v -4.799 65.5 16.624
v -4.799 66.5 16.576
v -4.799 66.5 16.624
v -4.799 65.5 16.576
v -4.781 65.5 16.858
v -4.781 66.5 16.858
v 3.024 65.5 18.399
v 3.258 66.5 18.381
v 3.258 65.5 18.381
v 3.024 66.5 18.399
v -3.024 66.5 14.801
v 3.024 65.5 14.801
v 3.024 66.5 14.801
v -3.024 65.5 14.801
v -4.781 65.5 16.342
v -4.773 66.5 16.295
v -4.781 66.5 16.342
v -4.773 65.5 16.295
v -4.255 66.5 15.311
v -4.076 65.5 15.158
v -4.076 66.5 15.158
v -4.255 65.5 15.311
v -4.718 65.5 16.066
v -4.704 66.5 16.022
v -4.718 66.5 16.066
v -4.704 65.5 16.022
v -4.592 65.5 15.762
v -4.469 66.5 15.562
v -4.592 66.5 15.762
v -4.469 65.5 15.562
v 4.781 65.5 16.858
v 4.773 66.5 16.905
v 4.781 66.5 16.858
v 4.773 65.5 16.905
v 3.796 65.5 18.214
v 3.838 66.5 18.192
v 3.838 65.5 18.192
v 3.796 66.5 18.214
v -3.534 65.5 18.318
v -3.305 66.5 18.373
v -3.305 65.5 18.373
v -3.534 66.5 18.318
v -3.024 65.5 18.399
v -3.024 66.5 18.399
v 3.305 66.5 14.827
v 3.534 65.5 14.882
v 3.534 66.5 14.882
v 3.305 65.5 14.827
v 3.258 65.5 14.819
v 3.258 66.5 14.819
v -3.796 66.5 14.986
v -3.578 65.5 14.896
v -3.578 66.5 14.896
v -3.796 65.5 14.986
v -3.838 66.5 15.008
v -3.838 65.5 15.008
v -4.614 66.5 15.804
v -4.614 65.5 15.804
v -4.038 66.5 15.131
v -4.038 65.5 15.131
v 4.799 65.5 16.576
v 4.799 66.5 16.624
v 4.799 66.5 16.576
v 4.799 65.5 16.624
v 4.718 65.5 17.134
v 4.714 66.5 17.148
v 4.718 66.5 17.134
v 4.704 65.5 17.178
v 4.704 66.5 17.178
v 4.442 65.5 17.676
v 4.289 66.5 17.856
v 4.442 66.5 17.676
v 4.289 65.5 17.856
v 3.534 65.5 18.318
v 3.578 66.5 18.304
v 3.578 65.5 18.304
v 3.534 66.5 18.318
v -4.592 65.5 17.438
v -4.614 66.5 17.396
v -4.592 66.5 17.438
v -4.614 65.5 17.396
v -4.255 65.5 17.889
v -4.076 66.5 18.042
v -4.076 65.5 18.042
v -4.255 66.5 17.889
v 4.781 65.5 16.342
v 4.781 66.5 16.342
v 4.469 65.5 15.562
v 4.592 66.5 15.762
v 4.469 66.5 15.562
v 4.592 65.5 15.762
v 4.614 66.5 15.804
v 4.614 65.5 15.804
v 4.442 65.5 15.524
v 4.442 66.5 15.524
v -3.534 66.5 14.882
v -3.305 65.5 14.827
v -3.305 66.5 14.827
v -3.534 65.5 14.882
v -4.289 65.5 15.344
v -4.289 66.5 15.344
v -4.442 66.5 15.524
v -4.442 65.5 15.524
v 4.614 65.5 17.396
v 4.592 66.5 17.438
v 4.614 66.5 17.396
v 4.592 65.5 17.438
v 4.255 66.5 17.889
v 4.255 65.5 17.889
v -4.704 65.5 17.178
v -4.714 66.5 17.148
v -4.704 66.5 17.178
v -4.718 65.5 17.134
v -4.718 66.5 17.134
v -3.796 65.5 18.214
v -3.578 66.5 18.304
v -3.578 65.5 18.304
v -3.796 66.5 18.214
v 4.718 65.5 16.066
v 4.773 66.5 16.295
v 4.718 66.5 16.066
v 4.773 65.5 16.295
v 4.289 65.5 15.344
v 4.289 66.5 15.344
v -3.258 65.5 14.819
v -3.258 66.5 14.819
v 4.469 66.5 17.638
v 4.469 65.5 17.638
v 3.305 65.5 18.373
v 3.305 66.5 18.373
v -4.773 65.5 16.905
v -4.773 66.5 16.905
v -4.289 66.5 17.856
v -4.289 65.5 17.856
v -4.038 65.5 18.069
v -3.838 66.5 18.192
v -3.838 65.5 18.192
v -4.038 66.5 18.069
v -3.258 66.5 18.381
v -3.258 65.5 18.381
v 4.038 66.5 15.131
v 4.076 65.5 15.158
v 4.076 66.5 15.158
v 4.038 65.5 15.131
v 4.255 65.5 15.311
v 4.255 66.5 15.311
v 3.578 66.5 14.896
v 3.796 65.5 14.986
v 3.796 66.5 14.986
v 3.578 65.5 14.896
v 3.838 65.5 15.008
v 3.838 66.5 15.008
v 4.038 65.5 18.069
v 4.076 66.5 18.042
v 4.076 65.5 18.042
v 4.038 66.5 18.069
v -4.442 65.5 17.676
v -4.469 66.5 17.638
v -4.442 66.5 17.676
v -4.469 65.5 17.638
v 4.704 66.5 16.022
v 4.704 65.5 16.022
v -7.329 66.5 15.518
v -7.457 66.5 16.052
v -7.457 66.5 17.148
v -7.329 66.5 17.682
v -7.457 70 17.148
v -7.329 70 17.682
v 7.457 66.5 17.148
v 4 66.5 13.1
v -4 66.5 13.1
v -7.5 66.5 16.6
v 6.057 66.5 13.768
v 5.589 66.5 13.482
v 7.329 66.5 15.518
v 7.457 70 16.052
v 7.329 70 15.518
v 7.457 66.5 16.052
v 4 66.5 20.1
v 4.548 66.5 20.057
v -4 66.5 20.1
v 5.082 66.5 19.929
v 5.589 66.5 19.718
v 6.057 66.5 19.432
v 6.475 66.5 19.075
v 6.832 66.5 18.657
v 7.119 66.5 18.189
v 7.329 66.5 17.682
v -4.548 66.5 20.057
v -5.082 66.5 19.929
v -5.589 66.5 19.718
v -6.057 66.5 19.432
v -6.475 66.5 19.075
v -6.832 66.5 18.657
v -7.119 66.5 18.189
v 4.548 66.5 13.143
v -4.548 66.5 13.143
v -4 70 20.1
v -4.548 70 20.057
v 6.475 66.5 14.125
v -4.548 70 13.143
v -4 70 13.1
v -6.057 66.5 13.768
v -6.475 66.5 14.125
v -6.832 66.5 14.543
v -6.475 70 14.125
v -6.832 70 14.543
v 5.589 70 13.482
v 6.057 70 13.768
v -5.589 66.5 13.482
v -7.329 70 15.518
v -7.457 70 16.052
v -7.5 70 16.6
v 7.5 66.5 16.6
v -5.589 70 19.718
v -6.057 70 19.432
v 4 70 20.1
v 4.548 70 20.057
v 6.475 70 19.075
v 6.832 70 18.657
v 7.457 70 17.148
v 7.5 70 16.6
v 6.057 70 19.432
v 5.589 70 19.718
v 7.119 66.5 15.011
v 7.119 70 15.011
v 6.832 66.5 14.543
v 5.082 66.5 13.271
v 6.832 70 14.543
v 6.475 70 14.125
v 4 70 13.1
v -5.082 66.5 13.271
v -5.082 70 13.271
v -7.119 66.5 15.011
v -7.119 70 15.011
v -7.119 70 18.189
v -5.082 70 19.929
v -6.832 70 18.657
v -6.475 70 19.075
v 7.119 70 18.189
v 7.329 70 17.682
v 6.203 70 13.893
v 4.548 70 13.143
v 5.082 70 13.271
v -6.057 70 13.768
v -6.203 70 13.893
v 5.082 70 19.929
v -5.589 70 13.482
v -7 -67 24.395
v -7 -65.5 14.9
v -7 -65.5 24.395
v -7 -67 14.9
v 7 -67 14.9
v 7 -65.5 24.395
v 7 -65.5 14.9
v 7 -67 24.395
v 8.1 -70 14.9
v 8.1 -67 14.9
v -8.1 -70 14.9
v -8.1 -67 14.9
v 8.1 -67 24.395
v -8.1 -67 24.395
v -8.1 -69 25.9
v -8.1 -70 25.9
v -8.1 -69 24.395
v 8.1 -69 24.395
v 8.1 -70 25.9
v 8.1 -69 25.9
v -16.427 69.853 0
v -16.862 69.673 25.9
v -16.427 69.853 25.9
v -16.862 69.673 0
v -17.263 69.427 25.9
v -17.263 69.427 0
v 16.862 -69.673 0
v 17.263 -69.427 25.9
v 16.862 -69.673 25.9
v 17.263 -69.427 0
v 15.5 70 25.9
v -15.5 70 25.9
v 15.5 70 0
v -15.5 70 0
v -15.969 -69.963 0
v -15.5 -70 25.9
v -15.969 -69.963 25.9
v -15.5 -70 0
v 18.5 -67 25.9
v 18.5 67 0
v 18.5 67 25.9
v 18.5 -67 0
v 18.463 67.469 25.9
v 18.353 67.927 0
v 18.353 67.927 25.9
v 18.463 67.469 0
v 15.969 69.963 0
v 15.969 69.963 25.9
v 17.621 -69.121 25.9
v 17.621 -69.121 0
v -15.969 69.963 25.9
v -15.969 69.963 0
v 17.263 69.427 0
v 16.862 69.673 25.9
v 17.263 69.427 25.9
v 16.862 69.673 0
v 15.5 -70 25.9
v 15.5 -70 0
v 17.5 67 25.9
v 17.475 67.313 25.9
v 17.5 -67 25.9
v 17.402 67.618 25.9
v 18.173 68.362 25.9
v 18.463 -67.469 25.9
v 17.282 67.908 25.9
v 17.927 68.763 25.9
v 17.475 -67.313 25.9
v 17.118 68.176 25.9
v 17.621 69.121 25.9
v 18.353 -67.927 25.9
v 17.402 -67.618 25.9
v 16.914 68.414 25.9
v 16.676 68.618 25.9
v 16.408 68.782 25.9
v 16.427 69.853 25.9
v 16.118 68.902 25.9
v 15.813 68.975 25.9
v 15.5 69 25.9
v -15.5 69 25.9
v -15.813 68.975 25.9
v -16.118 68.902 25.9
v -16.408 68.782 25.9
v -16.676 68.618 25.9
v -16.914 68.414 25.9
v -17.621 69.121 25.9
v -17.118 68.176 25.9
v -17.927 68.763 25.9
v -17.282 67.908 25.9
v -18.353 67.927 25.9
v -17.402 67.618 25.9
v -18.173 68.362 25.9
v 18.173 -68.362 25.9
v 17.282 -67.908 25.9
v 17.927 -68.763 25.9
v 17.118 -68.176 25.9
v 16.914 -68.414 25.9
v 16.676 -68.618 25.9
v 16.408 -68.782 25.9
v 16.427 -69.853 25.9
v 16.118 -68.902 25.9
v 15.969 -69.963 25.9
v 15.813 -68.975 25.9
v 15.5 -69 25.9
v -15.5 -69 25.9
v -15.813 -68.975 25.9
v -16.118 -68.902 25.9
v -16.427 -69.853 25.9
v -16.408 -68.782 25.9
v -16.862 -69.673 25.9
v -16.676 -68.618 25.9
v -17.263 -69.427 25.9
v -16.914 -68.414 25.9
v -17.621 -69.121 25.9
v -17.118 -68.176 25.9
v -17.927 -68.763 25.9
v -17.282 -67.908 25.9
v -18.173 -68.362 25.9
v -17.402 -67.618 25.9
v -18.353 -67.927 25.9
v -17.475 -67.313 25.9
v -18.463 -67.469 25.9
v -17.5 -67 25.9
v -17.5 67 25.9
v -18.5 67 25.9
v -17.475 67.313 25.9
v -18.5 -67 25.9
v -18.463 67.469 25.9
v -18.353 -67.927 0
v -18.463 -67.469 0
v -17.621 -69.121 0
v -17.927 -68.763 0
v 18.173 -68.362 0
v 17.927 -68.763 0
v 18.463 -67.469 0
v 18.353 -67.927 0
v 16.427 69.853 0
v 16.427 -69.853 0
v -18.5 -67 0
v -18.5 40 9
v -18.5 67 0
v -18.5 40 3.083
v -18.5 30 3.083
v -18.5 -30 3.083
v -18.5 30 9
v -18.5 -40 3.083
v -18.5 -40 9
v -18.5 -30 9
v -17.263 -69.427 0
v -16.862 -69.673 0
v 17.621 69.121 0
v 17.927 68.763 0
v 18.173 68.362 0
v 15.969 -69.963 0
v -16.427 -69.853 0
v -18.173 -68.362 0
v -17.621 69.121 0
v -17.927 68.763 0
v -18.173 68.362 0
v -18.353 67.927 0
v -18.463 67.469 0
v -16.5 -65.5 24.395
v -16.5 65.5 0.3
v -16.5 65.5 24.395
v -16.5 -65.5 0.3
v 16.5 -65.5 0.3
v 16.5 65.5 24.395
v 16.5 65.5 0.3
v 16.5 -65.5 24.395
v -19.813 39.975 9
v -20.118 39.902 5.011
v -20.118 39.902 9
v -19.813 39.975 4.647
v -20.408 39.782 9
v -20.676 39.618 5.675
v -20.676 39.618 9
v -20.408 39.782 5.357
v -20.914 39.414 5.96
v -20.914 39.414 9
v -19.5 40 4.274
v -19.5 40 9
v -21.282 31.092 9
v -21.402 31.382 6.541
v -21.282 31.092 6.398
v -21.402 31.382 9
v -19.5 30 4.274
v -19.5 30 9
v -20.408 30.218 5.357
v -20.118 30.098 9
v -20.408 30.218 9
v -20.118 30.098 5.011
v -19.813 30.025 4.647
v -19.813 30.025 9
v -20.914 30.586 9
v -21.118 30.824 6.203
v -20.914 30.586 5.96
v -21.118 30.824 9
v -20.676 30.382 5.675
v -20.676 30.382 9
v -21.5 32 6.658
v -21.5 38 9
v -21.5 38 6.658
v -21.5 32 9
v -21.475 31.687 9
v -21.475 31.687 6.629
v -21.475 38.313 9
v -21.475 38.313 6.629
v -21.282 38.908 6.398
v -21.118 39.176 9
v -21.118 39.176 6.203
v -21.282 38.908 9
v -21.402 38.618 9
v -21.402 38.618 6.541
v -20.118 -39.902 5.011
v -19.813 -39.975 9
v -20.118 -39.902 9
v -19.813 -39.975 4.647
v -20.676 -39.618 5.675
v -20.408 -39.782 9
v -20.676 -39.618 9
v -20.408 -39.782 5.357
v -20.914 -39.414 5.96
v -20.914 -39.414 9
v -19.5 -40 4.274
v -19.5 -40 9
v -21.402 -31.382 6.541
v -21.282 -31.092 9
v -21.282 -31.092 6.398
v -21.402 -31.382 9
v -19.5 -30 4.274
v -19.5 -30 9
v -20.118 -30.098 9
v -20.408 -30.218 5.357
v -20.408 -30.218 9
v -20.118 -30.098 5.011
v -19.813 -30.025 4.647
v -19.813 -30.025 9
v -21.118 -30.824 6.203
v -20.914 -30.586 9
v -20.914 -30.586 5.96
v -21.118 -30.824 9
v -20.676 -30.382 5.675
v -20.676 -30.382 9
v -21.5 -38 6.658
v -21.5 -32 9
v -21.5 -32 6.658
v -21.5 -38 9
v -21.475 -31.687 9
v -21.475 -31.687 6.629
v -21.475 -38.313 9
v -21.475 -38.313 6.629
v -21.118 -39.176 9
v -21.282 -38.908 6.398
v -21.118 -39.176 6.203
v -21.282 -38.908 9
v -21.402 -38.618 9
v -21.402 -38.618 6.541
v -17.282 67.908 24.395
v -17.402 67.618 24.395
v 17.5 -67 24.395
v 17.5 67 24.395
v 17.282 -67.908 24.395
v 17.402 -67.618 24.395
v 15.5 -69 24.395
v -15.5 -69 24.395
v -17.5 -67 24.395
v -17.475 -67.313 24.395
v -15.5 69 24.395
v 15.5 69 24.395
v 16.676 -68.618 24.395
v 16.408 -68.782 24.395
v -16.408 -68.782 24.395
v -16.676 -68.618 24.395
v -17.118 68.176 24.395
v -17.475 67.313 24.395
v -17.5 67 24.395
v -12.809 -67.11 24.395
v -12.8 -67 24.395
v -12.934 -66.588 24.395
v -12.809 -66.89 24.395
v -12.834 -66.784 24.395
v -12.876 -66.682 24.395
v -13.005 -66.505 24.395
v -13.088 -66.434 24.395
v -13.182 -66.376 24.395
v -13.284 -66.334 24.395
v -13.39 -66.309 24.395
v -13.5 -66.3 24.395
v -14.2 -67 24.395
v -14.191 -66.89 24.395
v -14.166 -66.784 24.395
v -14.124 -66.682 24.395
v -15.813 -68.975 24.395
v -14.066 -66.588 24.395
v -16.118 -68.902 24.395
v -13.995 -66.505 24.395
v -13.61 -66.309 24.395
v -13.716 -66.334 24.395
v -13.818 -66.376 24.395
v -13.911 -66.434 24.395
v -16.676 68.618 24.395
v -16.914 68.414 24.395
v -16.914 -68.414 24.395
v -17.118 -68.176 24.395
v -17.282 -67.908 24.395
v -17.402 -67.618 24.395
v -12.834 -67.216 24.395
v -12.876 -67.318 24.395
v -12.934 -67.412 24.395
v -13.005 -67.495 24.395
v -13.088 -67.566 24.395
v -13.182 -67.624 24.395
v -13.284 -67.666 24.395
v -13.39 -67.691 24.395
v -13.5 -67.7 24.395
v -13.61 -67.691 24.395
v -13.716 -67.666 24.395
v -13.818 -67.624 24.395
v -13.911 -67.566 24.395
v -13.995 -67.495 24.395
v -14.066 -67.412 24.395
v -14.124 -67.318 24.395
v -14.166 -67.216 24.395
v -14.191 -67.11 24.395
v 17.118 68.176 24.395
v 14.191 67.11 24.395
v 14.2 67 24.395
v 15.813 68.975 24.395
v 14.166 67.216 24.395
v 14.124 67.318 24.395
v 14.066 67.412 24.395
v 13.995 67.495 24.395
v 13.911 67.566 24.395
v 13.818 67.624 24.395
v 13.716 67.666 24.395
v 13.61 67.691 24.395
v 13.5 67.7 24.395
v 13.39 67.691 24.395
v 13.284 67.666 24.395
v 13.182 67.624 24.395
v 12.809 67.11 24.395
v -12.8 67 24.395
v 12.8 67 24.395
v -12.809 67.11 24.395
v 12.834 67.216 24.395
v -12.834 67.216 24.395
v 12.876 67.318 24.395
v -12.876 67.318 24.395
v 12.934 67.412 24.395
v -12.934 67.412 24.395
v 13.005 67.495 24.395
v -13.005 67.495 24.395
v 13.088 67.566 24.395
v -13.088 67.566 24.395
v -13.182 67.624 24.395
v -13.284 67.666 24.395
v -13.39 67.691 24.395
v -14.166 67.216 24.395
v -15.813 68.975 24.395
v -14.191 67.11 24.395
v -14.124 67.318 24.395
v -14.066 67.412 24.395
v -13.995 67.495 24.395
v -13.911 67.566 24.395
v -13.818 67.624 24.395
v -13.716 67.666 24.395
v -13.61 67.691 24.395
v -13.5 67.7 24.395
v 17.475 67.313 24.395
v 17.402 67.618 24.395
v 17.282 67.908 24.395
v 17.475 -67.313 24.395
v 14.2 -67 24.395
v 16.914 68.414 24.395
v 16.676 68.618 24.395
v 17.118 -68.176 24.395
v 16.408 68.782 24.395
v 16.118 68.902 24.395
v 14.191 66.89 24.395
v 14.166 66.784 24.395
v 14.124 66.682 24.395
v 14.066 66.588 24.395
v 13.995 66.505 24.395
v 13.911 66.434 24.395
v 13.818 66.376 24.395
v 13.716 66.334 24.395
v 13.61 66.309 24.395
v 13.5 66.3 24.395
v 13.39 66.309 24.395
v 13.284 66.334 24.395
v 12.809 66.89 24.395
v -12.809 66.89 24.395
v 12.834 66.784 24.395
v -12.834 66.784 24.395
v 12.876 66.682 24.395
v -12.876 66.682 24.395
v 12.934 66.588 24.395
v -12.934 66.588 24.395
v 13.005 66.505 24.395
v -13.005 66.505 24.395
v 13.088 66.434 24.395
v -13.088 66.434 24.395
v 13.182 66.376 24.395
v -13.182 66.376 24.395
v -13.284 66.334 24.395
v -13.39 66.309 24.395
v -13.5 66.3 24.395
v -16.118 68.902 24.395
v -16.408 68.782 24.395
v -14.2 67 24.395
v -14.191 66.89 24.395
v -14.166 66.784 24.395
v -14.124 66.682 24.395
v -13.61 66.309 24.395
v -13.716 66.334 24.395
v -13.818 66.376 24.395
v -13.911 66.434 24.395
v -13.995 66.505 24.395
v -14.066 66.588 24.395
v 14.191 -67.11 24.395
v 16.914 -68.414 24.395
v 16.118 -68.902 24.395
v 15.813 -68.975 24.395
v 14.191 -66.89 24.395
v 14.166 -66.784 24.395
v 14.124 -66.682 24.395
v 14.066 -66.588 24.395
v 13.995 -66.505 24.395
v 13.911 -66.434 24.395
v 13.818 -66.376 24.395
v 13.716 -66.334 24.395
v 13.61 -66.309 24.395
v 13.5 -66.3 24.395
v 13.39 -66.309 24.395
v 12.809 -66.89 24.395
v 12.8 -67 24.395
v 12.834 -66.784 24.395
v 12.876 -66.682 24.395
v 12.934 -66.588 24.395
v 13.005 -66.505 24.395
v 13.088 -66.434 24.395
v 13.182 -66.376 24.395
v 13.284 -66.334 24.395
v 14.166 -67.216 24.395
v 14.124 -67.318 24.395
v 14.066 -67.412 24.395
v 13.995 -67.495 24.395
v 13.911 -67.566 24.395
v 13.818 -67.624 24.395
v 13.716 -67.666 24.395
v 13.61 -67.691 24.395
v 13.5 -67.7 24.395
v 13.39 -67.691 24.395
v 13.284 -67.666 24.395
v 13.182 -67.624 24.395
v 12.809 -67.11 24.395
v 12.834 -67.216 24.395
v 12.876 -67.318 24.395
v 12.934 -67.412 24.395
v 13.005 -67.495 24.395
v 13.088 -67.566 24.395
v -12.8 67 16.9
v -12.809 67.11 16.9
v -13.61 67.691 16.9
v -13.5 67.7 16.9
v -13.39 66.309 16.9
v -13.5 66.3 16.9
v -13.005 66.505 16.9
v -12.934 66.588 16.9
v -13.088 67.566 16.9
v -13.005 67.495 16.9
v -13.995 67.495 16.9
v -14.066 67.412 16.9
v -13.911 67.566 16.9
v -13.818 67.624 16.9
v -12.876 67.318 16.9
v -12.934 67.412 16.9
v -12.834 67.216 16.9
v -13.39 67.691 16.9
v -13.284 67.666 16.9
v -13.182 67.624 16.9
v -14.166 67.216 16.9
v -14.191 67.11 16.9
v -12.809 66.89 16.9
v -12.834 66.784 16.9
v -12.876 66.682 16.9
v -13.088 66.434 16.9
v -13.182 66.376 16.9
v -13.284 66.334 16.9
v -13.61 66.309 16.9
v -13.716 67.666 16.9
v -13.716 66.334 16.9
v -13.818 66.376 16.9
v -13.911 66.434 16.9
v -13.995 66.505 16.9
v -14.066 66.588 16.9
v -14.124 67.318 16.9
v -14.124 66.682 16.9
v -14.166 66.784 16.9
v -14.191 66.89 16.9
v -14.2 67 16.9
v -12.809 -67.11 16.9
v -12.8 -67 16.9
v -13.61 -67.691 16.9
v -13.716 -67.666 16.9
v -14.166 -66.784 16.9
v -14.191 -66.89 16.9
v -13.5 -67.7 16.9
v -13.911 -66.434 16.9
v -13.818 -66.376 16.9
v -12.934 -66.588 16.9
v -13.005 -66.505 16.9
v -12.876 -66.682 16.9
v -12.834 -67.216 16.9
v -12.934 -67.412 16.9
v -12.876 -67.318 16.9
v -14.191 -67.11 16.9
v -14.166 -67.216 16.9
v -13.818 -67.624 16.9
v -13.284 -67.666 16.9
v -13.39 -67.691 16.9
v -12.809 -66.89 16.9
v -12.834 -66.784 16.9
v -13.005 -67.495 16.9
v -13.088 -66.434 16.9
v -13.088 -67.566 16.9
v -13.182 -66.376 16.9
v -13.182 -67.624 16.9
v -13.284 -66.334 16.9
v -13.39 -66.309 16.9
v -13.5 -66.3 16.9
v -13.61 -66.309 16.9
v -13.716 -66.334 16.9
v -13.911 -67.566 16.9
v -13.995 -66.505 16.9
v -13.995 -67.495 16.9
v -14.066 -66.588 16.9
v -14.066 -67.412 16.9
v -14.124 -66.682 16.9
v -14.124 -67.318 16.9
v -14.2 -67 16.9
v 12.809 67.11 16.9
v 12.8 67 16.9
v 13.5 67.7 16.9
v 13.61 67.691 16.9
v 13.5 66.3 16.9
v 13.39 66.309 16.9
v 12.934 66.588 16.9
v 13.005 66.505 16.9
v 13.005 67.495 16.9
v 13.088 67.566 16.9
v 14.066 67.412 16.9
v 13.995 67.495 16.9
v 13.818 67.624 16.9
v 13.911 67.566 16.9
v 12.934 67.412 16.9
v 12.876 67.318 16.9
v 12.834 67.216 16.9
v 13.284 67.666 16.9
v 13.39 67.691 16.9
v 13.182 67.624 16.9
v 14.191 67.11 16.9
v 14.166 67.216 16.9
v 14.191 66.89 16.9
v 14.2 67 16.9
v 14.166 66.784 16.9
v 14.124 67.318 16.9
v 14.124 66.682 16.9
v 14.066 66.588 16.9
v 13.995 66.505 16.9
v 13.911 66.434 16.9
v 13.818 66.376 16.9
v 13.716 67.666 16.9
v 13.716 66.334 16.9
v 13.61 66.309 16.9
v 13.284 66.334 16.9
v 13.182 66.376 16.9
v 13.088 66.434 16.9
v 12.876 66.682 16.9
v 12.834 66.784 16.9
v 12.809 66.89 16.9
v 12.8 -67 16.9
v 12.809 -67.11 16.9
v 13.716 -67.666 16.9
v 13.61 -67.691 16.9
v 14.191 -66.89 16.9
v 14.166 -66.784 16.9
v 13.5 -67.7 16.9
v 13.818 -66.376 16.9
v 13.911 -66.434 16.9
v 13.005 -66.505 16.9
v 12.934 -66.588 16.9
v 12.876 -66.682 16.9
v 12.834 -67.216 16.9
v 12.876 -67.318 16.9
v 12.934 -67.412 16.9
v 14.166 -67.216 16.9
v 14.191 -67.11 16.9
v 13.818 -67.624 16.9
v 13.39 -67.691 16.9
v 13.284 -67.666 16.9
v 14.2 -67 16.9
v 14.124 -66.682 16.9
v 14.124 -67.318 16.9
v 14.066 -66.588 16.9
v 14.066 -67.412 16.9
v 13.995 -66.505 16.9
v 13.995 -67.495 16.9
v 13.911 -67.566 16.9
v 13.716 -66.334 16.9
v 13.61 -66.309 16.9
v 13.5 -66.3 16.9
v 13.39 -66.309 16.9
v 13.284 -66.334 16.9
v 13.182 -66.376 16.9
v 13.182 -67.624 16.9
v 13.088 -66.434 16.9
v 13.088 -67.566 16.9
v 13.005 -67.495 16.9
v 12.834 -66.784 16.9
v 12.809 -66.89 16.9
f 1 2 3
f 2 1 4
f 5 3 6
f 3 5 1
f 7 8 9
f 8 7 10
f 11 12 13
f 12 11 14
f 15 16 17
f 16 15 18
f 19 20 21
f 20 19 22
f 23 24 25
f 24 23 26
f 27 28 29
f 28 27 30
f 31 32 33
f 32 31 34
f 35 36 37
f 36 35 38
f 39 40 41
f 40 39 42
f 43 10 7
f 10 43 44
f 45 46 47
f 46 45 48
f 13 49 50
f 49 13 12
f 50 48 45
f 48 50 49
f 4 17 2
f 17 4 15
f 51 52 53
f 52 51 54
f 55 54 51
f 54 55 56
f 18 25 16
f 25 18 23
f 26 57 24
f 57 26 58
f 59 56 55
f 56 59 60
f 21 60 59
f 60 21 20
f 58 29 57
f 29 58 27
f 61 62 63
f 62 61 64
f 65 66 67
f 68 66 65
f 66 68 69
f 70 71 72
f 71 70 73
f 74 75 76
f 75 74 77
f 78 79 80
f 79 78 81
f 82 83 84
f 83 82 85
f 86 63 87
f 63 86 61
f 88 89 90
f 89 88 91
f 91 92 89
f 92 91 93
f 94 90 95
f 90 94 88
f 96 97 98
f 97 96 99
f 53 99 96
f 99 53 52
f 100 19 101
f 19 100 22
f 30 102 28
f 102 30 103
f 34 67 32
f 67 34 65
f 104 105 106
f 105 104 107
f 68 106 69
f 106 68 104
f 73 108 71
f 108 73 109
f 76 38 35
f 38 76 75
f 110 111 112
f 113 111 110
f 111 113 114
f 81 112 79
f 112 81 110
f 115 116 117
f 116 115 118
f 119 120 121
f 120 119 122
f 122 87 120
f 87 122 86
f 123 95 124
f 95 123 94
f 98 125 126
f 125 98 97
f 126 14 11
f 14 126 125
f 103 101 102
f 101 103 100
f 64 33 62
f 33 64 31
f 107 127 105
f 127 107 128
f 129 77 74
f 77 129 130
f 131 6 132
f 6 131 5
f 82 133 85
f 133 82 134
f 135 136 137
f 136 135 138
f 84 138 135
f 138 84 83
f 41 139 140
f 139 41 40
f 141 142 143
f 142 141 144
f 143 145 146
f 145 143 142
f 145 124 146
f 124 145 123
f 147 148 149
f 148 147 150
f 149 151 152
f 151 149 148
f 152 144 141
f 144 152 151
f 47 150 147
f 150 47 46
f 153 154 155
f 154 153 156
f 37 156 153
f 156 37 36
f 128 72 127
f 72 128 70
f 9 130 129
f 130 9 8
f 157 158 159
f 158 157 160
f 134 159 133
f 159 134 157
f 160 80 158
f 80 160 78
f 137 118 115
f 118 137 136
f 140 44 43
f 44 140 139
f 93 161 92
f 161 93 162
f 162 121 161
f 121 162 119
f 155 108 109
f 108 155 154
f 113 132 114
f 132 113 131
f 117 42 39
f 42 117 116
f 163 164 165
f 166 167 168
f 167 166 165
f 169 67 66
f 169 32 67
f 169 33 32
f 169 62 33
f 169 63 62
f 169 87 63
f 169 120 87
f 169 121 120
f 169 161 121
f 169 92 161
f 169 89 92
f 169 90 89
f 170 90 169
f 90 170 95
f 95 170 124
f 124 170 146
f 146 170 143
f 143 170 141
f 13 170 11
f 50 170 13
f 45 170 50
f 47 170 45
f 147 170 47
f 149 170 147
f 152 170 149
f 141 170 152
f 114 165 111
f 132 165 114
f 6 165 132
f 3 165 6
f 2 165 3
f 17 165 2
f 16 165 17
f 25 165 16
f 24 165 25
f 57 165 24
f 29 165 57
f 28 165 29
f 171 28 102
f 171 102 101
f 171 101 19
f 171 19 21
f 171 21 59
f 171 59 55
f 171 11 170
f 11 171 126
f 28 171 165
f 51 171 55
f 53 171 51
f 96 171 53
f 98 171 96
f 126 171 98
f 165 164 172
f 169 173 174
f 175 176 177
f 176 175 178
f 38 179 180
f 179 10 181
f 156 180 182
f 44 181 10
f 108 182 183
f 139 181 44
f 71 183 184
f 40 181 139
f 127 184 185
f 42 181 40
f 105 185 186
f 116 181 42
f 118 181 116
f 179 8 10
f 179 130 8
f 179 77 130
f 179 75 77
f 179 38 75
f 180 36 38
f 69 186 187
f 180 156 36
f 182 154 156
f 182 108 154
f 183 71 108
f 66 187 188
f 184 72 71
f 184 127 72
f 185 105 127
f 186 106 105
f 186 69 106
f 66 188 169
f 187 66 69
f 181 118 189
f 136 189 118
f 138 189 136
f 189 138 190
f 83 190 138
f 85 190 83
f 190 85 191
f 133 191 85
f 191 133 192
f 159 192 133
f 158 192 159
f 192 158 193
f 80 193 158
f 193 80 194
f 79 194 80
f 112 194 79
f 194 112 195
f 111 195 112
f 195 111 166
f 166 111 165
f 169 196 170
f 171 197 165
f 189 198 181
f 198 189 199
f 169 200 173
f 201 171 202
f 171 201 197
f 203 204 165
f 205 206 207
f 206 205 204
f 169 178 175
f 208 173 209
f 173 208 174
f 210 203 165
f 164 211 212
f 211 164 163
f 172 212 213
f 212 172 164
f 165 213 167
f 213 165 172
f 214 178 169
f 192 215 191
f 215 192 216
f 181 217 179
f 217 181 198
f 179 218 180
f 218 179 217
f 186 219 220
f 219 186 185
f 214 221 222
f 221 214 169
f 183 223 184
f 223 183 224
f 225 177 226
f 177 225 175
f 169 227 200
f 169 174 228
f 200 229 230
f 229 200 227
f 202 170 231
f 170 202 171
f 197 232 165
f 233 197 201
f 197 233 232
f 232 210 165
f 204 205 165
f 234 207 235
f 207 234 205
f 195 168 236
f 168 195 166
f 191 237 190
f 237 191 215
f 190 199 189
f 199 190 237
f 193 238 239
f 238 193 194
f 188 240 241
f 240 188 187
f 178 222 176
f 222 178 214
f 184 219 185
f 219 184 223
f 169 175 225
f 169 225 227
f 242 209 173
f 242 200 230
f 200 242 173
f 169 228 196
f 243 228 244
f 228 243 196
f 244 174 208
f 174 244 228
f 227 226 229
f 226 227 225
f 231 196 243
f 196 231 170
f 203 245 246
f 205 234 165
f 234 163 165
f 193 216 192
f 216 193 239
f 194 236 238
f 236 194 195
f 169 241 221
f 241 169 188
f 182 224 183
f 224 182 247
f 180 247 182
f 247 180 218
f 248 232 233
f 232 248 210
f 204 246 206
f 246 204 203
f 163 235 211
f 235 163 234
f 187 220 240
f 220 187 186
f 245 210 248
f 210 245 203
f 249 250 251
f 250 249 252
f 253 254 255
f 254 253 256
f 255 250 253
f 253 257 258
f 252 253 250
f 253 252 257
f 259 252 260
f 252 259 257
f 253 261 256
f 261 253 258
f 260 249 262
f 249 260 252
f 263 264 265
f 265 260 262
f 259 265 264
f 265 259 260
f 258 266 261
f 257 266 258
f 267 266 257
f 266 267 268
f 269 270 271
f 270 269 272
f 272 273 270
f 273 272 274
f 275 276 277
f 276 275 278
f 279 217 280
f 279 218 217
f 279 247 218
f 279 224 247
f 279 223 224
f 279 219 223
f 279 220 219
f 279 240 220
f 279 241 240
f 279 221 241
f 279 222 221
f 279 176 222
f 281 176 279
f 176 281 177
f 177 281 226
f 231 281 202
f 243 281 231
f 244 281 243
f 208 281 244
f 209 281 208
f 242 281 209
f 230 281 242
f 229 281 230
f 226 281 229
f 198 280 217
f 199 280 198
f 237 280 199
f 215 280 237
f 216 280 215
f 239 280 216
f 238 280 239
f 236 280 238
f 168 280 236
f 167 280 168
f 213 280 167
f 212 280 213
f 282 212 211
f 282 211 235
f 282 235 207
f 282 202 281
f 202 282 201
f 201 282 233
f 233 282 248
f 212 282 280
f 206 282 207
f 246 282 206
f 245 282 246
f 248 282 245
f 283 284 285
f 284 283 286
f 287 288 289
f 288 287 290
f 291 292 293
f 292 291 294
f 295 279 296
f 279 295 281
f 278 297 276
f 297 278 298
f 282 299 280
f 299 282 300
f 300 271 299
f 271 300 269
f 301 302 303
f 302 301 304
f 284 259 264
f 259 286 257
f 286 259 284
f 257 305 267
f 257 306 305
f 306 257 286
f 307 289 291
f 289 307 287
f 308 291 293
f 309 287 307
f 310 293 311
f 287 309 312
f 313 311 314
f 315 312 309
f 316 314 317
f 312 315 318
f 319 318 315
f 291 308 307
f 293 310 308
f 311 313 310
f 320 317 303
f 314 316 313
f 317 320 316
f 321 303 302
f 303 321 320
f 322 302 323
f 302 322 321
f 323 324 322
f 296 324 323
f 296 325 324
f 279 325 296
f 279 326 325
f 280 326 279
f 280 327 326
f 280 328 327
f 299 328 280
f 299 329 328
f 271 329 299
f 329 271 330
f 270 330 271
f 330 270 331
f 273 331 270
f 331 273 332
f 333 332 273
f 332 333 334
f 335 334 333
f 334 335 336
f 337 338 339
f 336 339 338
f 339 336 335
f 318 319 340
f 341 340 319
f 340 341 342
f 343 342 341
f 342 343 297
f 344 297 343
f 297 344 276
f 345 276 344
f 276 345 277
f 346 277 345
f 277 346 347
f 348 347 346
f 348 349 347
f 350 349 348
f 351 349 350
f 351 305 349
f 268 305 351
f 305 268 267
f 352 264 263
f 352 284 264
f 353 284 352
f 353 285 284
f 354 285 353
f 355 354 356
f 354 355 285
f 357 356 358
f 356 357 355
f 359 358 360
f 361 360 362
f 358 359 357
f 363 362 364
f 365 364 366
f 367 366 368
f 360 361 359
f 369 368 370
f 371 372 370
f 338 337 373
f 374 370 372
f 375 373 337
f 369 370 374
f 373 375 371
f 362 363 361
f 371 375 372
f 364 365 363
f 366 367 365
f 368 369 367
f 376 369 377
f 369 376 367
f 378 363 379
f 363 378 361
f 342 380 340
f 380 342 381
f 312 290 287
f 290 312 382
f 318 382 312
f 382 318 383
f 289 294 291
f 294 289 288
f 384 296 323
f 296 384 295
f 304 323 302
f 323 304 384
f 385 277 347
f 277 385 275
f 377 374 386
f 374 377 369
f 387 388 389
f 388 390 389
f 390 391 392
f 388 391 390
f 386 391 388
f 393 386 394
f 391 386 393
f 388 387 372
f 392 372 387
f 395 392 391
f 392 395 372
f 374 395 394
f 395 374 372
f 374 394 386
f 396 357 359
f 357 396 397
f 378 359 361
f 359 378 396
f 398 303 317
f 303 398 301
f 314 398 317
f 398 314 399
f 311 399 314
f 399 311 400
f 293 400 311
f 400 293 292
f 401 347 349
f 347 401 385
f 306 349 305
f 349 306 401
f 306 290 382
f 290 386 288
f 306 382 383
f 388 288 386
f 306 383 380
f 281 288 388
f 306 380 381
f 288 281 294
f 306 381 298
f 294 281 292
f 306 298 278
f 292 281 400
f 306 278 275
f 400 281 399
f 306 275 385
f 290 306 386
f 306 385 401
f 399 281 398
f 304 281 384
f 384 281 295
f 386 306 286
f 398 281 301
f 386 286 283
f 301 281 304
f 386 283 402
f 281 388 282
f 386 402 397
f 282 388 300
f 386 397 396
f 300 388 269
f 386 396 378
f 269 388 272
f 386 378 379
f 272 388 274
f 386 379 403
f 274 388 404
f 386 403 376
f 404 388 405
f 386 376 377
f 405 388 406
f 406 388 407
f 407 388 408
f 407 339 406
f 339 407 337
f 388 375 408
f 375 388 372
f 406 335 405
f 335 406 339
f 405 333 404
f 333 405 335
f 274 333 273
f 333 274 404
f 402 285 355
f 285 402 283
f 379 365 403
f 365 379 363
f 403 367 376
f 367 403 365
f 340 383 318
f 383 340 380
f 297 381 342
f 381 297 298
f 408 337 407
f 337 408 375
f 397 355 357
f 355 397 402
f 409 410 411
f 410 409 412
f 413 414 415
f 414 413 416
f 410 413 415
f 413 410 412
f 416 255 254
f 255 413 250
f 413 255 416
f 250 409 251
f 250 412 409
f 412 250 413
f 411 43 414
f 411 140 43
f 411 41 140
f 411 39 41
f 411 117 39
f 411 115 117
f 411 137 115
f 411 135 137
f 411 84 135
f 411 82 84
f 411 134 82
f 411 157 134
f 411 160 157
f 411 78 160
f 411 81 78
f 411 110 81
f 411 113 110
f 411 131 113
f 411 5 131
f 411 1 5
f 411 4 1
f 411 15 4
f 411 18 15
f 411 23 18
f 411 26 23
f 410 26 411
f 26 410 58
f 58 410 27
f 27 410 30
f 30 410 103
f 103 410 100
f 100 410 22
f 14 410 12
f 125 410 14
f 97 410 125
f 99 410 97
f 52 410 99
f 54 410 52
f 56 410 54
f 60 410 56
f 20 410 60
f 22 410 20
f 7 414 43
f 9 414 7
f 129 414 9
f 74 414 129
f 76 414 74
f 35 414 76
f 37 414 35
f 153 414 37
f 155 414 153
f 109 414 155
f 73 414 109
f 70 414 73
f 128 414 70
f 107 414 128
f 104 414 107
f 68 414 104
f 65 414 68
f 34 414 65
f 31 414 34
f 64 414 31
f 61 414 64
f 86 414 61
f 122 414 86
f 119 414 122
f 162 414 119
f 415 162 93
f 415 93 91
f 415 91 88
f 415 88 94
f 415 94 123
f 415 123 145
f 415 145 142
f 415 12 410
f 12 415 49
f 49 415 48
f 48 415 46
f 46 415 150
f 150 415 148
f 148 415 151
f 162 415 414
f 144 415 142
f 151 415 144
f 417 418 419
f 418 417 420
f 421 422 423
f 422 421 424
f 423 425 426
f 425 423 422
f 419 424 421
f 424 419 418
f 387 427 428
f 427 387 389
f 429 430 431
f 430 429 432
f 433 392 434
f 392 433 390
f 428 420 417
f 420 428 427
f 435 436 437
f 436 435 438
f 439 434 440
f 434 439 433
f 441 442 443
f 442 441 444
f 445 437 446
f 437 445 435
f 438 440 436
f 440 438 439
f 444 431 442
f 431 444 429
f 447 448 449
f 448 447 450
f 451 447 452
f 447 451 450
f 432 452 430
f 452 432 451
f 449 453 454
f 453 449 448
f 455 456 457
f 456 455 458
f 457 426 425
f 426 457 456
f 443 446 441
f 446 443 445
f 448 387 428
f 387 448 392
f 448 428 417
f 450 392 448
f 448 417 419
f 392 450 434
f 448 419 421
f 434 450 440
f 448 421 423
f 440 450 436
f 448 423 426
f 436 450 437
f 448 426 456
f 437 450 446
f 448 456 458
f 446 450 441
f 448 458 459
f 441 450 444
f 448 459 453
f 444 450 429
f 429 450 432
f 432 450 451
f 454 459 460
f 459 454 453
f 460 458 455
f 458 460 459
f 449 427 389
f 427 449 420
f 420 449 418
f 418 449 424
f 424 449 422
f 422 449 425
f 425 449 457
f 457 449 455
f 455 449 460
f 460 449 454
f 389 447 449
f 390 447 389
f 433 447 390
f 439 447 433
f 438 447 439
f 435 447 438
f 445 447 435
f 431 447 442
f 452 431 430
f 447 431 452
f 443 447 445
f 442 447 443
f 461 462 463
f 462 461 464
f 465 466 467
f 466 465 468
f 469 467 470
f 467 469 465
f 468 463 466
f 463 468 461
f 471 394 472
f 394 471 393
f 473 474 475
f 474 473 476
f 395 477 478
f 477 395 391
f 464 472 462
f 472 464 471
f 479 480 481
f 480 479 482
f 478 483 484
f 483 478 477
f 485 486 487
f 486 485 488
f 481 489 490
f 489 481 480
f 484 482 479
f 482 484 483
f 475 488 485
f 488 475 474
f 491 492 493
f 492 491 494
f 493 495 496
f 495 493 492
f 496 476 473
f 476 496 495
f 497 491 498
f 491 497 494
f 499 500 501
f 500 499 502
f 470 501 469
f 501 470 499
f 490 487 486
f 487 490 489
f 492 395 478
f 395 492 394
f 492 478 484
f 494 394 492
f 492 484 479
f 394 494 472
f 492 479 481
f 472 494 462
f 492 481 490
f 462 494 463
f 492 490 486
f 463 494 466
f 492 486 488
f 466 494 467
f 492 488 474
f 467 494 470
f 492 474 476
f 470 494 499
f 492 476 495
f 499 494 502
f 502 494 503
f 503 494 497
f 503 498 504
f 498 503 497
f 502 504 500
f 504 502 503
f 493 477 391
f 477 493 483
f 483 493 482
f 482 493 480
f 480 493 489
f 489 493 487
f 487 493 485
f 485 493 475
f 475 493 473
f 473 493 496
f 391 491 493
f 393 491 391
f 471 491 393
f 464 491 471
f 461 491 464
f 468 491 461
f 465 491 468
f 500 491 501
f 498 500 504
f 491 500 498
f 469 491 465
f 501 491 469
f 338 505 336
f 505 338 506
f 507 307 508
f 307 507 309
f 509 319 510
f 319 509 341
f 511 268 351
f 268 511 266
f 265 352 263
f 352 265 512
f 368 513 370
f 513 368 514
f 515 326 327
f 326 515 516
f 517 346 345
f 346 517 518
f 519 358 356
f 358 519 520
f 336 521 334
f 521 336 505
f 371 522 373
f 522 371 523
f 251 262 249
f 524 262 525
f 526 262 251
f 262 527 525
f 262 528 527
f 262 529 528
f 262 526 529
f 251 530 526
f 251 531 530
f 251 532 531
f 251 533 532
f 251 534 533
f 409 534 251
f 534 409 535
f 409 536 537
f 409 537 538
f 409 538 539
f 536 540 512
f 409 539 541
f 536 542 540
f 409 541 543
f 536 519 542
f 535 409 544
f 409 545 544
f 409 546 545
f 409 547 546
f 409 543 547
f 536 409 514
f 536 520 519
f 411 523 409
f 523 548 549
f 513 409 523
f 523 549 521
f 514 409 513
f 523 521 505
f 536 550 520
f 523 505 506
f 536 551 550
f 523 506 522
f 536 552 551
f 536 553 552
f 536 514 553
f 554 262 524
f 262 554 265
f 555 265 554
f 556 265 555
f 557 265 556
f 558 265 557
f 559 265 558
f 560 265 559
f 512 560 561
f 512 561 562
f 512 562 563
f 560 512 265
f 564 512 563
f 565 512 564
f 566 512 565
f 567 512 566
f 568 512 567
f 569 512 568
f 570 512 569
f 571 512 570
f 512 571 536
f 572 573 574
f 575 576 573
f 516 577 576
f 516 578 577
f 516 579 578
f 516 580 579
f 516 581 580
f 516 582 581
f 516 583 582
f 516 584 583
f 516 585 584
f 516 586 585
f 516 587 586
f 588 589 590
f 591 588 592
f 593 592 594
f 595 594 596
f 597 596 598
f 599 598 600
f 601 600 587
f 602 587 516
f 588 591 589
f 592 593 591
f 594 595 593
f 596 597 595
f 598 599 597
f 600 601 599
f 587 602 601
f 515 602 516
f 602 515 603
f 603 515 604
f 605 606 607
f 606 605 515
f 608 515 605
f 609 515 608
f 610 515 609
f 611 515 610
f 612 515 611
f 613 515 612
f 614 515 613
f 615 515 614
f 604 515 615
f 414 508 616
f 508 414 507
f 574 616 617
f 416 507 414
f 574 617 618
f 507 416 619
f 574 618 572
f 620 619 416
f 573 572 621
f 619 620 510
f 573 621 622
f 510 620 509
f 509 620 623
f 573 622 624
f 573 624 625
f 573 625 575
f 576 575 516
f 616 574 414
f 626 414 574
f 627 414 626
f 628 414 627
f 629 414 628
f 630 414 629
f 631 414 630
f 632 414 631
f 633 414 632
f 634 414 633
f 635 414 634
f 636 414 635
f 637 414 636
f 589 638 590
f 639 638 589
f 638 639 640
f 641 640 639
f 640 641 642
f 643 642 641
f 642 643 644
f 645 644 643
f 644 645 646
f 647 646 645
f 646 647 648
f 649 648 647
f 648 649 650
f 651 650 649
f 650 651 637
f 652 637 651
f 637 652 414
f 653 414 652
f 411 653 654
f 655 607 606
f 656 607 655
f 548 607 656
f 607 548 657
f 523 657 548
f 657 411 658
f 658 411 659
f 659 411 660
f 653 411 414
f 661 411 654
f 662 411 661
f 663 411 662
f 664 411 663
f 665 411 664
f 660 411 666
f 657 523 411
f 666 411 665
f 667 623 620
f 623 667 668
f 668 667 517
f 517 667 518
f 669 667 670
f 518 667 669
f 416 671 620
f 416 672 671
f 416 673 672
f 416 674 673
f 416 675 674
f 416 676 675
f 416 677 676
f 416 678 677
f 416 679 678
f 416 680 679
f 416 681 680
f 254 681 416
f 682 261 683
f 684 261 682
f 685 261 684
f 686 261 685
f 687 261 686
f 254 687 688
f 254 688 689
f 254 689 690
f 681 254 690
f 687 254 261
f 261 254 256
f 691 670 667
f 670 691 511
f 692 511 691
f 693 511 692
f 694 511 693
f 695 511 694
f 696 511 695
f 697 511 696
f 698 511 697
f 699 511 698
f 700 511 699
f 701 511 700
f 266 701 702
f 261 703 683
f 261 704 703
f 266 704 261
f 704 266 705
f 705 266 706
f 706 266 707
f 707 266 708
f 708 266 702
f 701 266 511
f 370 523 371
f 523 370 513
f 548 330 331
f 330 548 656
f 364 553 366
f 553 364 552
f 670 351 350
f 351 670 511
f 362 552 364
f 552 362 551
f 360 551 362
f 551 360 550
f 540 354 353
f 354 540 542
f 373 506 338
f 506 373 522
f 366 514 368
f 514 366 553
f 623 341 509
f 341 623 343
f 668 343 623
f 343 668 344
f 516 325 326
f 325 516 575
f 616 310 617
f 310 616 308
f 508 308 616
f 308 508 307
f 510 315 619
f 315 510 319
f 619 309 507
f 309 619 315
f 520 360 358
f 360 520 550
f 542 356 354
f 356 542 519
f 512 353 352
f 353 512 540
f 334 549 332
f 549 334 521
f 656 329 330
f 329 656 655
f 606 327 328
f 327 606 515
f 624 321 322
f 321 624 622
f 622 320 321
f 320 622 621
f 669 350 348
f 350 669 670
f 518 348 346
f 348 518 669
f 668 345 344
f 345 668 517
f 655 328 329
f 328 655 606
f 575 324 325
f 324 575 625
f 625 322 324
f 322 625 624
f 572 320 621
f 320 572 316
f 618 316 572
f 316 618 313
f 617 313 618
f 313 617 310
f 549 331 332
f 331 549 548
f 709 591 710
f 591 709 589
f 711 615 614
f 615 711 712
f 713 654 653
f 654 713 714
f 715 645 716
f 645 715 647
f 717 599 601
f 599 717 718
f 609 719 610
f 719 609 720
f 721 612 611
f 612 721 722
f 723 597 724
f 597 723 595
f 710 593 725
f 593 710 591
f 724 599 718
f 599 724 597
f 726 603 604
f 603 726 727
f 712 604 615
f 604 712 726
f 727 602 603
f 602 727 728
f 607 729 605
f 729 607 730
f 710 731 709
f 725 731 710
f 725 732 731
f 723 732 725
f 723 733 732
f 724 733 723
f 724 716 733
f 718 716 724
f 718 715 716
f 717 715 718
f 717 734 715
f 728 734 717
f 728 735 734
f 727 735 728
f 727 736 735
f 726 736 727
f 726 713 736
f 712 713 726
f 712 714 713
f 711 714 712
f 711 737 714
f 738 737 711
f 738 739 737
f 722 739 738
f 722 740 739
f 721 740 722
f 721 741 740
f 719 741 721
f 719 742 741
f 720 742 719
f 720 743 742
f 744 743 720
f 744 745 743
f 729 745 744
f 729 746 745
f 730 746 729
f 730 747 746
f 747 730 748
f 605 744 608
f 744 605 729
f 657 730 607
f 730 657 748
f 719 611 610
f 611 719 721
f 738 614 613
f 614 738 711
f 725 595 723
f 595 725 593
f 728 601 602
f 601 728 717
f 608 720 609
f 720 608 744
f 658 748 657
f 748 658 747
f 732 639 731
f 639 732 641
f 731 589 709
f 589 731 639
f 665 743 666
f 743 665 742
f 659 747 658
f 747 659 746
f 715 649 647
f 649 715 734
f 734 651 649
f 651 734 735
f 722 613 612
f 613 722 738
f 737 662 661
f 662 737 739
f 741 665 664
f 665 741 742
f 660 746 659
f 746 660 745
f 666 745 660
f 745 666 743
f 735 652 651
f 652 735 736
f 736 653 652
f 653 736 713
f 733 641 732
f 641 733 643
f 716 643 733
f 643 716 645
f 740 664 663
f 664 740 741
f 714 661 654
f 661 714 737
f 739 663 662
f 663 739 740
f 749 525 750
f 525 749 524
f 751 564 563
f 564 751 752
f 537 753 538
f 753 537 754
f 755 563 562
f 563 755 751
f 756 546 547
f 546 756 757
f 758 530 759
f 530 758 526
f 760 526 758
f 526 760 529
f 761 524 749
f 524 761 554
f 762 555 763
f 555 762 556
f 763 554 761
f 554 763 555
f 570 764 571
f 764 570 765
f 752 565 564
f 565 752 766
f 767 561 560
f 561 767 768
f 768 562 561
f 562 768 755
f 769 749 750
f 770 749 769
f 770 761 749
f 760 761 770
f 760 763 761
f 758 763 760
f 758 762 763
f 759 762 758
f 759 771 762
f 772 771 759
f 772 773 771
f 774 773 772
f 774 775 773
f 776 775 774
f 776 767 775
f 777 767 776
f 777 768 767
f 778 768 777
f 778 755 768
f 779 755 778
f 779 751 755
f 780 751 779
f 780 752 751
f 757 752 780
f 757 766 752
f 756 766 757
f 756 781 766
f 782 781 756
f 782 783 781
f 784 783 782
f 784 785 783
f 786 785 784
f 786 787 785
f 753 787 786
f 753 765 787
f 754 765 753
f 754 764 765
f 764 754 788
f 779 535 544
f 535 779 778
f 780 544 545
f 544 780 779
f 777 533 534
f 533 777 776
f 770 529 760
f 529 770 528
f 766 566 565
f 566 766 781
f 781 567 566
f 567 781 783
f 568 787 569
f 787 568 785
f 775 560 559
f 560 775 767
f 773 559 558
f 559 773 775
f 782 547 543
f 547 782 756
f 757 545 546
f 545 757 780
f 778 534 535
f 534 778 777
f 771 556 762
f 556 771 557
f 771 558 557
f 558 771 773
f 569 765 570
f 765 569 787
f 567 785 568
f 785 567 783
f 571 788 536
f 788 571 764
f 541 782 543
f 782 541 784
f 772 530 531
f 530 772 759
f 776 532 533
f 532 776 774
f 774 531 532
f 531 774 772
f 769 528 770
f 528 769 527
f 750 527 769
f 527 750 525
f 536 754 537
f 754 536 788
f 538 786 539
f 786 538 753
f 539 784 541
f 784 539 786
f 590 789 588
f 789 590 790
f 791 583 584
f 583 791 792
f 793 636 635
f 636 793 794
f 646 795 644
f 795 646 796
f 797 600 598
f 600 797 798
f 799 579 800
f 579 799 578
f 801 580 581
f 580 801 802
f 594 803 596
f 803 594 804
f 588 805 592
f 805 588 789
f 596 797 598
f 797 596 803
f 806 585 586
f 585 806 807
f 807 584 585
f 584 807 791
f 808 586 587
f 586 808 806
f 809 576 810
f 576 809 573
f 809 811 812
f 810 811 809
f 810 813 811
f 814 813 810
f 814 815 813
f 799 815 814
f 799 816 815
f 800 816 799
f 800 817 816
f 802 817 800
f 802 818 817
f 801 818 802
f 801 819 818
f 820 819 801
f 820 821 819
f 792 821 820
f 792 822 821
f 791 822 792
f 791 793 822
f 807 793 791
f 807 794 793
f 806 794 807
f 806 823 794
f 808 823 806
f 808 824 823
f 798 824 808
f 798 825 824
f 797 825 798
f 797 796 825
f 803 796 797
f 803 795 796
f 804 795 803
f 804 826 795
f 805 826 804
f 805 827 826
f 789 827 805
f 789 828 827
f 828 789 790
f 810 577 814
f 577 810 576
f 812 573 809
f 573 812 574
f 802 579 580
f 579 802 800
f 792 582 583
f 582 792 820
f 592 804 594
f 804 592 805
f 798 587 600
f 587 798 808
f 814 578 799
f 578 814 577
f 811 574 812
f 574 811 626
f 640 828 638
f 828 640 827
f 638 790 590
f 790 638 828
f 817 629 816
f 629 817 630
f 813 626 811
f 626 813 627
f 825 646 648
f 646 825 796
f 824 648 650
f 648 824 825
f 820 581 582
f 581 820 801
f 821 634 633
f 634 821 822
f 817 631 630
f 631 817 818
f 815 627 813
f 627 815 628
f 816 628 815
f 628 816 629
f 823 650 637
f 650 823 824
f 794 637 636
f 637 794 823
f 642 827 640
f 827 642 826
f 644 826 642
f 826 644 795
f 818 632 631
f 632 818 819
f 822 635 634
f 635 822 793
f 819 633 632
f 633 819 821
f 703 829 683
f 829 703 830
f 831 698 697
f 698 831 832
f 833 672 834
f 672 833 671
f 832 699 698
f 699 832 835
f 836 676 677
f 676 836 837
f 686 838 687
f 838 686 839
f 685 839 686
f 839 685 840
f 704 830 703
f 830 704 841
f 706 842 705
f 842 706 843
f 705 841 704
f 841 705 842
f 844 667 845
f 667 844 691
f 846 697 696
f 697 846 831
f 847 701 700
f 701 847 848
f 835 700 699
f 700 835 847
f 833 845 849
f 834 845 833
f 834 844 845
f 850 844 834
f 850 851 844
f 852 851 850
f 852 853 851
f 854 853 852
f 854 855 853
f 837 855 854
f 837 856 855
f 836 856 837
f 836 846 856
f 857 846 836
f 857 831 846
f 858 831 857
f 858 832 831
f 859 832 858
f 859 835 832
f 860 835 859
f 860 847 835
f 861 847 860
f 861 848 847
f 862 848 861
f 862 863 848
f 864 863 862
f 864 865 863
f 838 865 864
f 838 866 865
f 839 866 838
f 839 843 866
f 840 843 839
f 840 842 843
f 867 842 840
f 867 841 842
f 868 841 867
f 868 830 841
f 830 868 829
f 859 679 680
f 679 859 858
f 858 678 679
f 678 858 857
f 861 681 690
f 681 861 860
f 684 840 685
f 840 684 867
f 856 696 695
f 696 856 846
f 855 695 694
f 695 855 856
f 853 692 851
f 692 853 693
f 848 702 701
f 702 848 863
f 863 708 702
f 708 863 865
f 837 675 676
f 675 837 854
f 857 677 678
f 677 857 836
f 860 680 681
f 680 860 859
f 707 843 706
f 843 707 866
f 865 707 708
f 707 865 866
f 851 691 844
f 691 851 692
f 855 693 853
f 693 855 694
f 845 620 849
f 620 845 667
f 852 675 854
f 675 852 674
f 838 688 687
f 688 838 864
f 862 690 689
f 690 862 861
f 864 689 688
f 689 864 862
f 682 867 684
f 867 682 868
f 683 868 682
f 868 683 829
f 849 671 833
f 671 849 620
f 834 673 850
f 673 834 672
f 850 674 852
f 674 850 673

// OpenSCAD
// file: charging_board_typec.scad
USB_TYPEC_BOARD_X = 17.1;
USB_TYPEC_BOARD_Y = 28.1;
USB_TYPEC_BOARD_Z = 1.0;

module USB_TYPEC_BOARD(diff=false) {
  translate([0, -USB_TYPEC_BOARD_Y/2, 0])   
  linear_extrude(height=USB_TYPEC_BOARD_Z, center=!true, convexity=10, twist=0) 
  square(size=[USB_TYPEC_BOARD_X, USB_TYPEC_BOARD_Y], center=true);

  translate([0, 1.5, USB_TYPEC_BOARD_Z])
  translate([0, -7.3, 3/2])
  rotate([-90, 0, 0]) 
  linear_extrude(height=diff ? 20 : 7.3, center=!true, convexity=10, twist=0)
  hull(){
    offset(r= diff ? 0.3 : 0)
    mirror_x()
    translate([9/2-3/2, 0, 0])
    circle(d=3);
  }
}
// file: scad-utils/mirror.scad
// Copyright (c) 2013 Oskar Linde. All rights reserved.
// License: BSD
//
// This library contains simple mirroring functions
//
// mirror_x()
// mirror_y()
// mirror_z()


module mirror_x() {
  union() {
    child();
    scale([-1,1,1]) child();
  }
}

module mirror_y() {
  union() {
    child();
    scale([1,-1,1]) child();
  }
}

module mirror_z() {
  union() {
    child();
    scale([1,1,-1]) child();
  }
}
// file: scad-utils/morphology.scad
// Copyright (c) 2013 Oskar Linde. All rights reserved.
// License: BSD
//
// This library contains basic 2D morphology operations
//
// outset(d=1)            - creates a polygon at an offset d outside a 2D shape
// inset(d=1)             - creates a polygon at an offset d inside a 2D shape
// fillet(r=1)            - adds fillets of radius r to all concave corners of a 2D shape
// rounding(r=1)          - adds rounding to all convex corners of a 2D shape
// shell(d,center=false)  - makes a shell of width d along the edge of a 2D shape
//                        - positive values of d places the shell on the outside
//                        - negative values of d places the shell on the inside
//                        - center=true and positive d places the shell centered on the edge

module outset(d=1) {
	// Bug workaround for older OpenSCAD versions
	if (version_num() < 20130424) render() outset_extruded(d) children();
	else minkowski() {
		circle(r=d);
		children();
	}
}

module outset_extruded(d=1) {
   projection(cut=true) minkowski() {
        cylinder(r=d);
        linear_extrude(center=true) children();
   }
}

module inset(d=1) {
	 render() inverse() outset(d=d) inverse() children();
}

module fillet(r=1) {
	inset(d=r) render() outset(d=r) children();
}

module rounding(r=1) {
	outset(d=r) inset(d=r) children();
}

module shell(d,center=false) {
	if (center && d > 0) {
		difference() {
			outset(d=d/2) children();
			inset(d=d/2) children();
		}
	}
	if (!center && d > 0) {
		difference() {
			outset(d=d) children();
			children();
		}
	}
	if (!center && d < 0) {
		difference() {
			children();
			inset(d=-d) children();
		}
	}
	if (d == 0) children();
}


// Below are for internal use only

module inverse() {
	difference() {
		square(1e5,center=true);
		children();
	}
}


// TEST CODE

use <mirror.scad>

module arrow(l=1,w=.6,t=0.15) {
	mirror_y() polygon([[0,0],[l,0],[l-w/2,w/2],[l-w/2-sqrt(2)*t,w/2],[l-t/2-sqrt(2)*t,t/2],[0,t/2]]);
}

module shape() {
	polygon([[0,0],[1,0],[1.5,1],[2.5,1],[2,-1],[0,-1]]);
}

if(0) assign($fn=32) {

	for (p = [0:10*3-1]) assign(o=floor(p/3)) {
		translate([(p%3)*2.5,-o*3]) {
			//%if (p % 3 == 1) translate([0,0,1]) shape();
			if (p % 3 == 0) shape();
			if (p % 3 == 1) translate([0.6,0]) arrow();
			if (p % 3 == 2) {
				if (o == 0) inset(d=0.3) shape();
				if (o == 1) outset(d=0.3) shape();
				if (o == 2) rounding(r=0.3) shape();
				if (o == 3) fillet(r=0.3) shape();
				if (o == 4) shell(d=0.3) shape();
				if (o == 5) shell(d=-0.3) shape();
				if (o == 6) shell(d=0.3,center=true) shape();
				if (o == 7) rounding(r=0.3) fillet(r=0.3) shape();
				if (o == 8) shell(d=0.3,center=true) fillet(r=0.3) rounding(r=0.3) shape();
				if (o == 9) shell(d=-0.3) fillet(r=0.3) rounding(r=0.3) shape();
			}
		}
	}
}
// file: minidenko-case-base.scad
$fn=40;

include <scad-utils/morphology.scad>
include <scad-utils/mirror.scad>

// include <charging_board_microb.scad>
include <charging_board_typec.scad>

LED_X=32;
LED_Y=130;
LED_Z=13.0;

BODY_X=LED_X+5;
BODY_Y=LED_Y+10;
// BODY_BOTTOM_Z = 1.4;
BODY_BOTTOM_Z = 0.3;
BODY_Z=LED_Z+11+0.8*2 + BODY_BOTTOM_Z;

STAND_X=3;

BACKPANEL_Z=1.2;

// LED Matrix
*%translate([0, 0, LED_Z/2 + BODY_BOTTOM_Z])
color("red")
cube(size=[LED_X, LED_Y, LED_Z], center=true);

module body(){
  difference(){
    linear_extrude(height=BODY_Z, center=!true, convexity=10, twist=0)
    rounding(r=3)
    square(size=[BODY_X, BODY_Y], center=true);

    // inner space
    translate([0, 0, (BODY_Z)/2 + BODY_BOTTOM_Z]) 
    cube(size=[LED_X + 1, LED_Y + 1, BODY_Z], center=true);

    // edge();
    // USB
    translate([0, LED_Y/2, LED_Z + BODY_BOTTOM_Z + 0.8]) {
      USB_TYPEC_BOARD(diff=true);
      // USB PLUG
      translate([0, 1.5, 0])
      translate([0, 0, 5/2])  
      rotate([-90, 0, 0]) 
      linear_extrude(height=10, center=!true, convexity=10, twist=0)
      hull(){
        mirror_x()
        translate([4, 0, 0])
        circle(d=7);
      }
    }

    // sw
    translate([0, -BODY_Y/2+3, LED_Z + BODY_BOTTOM_Z +  12/2 + 0.8 * 2]) {
      translate([0, 15/2, 0])
      cube(size=[14, 15, 12], center=true);

      translate([0, -5/2, 0]) 
      cube(size=[15.2+1, 5, 12], center=true);
    }


  }
  // stand
  mirror_y()
  translate([0, BODY_Y/4, 3]) 
  translate([-BODY_X/2, 0, 0]) 
  difference(){
    linear_extrude(height=6, center=!true, convexity=10, twist=0)
    difference(){
      rounding(r=2)
      square(size=[STAND_X*2, 10], center=true);

      translate([STAND_X/2, 0, 0]) 
      square(size=[STAND_X, 10], center=true);
    }
    translate([-7*cos(50), 0, 0]) 
    rotate([0, 50, 0]) 
    cube(size=[7, 10, 7], center=true);

  }

}

// screws
module screws(d=1.4) {
  mirror_x()
  mirror_y()
  translate([-(BODY_X/2 - 5), BODY_Y/2 - 3, BODY_Z-9])
  cylinder(d=d, h=10, center=!true);
}


module backPanel(inset=0, h=1.2) {
  difference(){
    translate([0, 0, BODY_Z]) 
    hull() {
      linear_extrude(height=0.01, center=true, convexity=10, twist=0)
      inset(d=1+inset)
      rounding(r=3)
      square(size=[BODY_X, BODY_Y], center=true);

      translate([0, 0, -h]) 
      linear_extrude(height=0.01, center=true, convexity=10, twist=0)
      inset(d=1+inset)
      rounding(r=3)
      square(size=[BODY_X, BODY_Y], center=true);  
    }

    // power switch
    translate([0, -BODY_Y/2+3, LED_Z + BODY_BOTTOM_Z +  12/2 + 0.8]) {
      translate([0, -5/2, 0]) 
      cube(size=[15.2+1, 5, 12], center=true);
    }
  }
}
// main file
$fn=40;

include <minidenko-case-base.scad>

BODY_BOTTOM_Z = 0.3;

difference(){
  body();
  backPanel(h=1.5);
  screws(1.4);
}

// dummy for partial printing
*intersection(){
  translate([0, (BODY_Y - 20) * -1 * 0, BODY_Z*1.2/2]) 
  cube(size=[BODY_X*1.2, BODY_Y, BODY_Z*1.2], center=true);

  difference(){
    body();
    backPanel(h=1.5);
    screws(1.4);
  }
}
